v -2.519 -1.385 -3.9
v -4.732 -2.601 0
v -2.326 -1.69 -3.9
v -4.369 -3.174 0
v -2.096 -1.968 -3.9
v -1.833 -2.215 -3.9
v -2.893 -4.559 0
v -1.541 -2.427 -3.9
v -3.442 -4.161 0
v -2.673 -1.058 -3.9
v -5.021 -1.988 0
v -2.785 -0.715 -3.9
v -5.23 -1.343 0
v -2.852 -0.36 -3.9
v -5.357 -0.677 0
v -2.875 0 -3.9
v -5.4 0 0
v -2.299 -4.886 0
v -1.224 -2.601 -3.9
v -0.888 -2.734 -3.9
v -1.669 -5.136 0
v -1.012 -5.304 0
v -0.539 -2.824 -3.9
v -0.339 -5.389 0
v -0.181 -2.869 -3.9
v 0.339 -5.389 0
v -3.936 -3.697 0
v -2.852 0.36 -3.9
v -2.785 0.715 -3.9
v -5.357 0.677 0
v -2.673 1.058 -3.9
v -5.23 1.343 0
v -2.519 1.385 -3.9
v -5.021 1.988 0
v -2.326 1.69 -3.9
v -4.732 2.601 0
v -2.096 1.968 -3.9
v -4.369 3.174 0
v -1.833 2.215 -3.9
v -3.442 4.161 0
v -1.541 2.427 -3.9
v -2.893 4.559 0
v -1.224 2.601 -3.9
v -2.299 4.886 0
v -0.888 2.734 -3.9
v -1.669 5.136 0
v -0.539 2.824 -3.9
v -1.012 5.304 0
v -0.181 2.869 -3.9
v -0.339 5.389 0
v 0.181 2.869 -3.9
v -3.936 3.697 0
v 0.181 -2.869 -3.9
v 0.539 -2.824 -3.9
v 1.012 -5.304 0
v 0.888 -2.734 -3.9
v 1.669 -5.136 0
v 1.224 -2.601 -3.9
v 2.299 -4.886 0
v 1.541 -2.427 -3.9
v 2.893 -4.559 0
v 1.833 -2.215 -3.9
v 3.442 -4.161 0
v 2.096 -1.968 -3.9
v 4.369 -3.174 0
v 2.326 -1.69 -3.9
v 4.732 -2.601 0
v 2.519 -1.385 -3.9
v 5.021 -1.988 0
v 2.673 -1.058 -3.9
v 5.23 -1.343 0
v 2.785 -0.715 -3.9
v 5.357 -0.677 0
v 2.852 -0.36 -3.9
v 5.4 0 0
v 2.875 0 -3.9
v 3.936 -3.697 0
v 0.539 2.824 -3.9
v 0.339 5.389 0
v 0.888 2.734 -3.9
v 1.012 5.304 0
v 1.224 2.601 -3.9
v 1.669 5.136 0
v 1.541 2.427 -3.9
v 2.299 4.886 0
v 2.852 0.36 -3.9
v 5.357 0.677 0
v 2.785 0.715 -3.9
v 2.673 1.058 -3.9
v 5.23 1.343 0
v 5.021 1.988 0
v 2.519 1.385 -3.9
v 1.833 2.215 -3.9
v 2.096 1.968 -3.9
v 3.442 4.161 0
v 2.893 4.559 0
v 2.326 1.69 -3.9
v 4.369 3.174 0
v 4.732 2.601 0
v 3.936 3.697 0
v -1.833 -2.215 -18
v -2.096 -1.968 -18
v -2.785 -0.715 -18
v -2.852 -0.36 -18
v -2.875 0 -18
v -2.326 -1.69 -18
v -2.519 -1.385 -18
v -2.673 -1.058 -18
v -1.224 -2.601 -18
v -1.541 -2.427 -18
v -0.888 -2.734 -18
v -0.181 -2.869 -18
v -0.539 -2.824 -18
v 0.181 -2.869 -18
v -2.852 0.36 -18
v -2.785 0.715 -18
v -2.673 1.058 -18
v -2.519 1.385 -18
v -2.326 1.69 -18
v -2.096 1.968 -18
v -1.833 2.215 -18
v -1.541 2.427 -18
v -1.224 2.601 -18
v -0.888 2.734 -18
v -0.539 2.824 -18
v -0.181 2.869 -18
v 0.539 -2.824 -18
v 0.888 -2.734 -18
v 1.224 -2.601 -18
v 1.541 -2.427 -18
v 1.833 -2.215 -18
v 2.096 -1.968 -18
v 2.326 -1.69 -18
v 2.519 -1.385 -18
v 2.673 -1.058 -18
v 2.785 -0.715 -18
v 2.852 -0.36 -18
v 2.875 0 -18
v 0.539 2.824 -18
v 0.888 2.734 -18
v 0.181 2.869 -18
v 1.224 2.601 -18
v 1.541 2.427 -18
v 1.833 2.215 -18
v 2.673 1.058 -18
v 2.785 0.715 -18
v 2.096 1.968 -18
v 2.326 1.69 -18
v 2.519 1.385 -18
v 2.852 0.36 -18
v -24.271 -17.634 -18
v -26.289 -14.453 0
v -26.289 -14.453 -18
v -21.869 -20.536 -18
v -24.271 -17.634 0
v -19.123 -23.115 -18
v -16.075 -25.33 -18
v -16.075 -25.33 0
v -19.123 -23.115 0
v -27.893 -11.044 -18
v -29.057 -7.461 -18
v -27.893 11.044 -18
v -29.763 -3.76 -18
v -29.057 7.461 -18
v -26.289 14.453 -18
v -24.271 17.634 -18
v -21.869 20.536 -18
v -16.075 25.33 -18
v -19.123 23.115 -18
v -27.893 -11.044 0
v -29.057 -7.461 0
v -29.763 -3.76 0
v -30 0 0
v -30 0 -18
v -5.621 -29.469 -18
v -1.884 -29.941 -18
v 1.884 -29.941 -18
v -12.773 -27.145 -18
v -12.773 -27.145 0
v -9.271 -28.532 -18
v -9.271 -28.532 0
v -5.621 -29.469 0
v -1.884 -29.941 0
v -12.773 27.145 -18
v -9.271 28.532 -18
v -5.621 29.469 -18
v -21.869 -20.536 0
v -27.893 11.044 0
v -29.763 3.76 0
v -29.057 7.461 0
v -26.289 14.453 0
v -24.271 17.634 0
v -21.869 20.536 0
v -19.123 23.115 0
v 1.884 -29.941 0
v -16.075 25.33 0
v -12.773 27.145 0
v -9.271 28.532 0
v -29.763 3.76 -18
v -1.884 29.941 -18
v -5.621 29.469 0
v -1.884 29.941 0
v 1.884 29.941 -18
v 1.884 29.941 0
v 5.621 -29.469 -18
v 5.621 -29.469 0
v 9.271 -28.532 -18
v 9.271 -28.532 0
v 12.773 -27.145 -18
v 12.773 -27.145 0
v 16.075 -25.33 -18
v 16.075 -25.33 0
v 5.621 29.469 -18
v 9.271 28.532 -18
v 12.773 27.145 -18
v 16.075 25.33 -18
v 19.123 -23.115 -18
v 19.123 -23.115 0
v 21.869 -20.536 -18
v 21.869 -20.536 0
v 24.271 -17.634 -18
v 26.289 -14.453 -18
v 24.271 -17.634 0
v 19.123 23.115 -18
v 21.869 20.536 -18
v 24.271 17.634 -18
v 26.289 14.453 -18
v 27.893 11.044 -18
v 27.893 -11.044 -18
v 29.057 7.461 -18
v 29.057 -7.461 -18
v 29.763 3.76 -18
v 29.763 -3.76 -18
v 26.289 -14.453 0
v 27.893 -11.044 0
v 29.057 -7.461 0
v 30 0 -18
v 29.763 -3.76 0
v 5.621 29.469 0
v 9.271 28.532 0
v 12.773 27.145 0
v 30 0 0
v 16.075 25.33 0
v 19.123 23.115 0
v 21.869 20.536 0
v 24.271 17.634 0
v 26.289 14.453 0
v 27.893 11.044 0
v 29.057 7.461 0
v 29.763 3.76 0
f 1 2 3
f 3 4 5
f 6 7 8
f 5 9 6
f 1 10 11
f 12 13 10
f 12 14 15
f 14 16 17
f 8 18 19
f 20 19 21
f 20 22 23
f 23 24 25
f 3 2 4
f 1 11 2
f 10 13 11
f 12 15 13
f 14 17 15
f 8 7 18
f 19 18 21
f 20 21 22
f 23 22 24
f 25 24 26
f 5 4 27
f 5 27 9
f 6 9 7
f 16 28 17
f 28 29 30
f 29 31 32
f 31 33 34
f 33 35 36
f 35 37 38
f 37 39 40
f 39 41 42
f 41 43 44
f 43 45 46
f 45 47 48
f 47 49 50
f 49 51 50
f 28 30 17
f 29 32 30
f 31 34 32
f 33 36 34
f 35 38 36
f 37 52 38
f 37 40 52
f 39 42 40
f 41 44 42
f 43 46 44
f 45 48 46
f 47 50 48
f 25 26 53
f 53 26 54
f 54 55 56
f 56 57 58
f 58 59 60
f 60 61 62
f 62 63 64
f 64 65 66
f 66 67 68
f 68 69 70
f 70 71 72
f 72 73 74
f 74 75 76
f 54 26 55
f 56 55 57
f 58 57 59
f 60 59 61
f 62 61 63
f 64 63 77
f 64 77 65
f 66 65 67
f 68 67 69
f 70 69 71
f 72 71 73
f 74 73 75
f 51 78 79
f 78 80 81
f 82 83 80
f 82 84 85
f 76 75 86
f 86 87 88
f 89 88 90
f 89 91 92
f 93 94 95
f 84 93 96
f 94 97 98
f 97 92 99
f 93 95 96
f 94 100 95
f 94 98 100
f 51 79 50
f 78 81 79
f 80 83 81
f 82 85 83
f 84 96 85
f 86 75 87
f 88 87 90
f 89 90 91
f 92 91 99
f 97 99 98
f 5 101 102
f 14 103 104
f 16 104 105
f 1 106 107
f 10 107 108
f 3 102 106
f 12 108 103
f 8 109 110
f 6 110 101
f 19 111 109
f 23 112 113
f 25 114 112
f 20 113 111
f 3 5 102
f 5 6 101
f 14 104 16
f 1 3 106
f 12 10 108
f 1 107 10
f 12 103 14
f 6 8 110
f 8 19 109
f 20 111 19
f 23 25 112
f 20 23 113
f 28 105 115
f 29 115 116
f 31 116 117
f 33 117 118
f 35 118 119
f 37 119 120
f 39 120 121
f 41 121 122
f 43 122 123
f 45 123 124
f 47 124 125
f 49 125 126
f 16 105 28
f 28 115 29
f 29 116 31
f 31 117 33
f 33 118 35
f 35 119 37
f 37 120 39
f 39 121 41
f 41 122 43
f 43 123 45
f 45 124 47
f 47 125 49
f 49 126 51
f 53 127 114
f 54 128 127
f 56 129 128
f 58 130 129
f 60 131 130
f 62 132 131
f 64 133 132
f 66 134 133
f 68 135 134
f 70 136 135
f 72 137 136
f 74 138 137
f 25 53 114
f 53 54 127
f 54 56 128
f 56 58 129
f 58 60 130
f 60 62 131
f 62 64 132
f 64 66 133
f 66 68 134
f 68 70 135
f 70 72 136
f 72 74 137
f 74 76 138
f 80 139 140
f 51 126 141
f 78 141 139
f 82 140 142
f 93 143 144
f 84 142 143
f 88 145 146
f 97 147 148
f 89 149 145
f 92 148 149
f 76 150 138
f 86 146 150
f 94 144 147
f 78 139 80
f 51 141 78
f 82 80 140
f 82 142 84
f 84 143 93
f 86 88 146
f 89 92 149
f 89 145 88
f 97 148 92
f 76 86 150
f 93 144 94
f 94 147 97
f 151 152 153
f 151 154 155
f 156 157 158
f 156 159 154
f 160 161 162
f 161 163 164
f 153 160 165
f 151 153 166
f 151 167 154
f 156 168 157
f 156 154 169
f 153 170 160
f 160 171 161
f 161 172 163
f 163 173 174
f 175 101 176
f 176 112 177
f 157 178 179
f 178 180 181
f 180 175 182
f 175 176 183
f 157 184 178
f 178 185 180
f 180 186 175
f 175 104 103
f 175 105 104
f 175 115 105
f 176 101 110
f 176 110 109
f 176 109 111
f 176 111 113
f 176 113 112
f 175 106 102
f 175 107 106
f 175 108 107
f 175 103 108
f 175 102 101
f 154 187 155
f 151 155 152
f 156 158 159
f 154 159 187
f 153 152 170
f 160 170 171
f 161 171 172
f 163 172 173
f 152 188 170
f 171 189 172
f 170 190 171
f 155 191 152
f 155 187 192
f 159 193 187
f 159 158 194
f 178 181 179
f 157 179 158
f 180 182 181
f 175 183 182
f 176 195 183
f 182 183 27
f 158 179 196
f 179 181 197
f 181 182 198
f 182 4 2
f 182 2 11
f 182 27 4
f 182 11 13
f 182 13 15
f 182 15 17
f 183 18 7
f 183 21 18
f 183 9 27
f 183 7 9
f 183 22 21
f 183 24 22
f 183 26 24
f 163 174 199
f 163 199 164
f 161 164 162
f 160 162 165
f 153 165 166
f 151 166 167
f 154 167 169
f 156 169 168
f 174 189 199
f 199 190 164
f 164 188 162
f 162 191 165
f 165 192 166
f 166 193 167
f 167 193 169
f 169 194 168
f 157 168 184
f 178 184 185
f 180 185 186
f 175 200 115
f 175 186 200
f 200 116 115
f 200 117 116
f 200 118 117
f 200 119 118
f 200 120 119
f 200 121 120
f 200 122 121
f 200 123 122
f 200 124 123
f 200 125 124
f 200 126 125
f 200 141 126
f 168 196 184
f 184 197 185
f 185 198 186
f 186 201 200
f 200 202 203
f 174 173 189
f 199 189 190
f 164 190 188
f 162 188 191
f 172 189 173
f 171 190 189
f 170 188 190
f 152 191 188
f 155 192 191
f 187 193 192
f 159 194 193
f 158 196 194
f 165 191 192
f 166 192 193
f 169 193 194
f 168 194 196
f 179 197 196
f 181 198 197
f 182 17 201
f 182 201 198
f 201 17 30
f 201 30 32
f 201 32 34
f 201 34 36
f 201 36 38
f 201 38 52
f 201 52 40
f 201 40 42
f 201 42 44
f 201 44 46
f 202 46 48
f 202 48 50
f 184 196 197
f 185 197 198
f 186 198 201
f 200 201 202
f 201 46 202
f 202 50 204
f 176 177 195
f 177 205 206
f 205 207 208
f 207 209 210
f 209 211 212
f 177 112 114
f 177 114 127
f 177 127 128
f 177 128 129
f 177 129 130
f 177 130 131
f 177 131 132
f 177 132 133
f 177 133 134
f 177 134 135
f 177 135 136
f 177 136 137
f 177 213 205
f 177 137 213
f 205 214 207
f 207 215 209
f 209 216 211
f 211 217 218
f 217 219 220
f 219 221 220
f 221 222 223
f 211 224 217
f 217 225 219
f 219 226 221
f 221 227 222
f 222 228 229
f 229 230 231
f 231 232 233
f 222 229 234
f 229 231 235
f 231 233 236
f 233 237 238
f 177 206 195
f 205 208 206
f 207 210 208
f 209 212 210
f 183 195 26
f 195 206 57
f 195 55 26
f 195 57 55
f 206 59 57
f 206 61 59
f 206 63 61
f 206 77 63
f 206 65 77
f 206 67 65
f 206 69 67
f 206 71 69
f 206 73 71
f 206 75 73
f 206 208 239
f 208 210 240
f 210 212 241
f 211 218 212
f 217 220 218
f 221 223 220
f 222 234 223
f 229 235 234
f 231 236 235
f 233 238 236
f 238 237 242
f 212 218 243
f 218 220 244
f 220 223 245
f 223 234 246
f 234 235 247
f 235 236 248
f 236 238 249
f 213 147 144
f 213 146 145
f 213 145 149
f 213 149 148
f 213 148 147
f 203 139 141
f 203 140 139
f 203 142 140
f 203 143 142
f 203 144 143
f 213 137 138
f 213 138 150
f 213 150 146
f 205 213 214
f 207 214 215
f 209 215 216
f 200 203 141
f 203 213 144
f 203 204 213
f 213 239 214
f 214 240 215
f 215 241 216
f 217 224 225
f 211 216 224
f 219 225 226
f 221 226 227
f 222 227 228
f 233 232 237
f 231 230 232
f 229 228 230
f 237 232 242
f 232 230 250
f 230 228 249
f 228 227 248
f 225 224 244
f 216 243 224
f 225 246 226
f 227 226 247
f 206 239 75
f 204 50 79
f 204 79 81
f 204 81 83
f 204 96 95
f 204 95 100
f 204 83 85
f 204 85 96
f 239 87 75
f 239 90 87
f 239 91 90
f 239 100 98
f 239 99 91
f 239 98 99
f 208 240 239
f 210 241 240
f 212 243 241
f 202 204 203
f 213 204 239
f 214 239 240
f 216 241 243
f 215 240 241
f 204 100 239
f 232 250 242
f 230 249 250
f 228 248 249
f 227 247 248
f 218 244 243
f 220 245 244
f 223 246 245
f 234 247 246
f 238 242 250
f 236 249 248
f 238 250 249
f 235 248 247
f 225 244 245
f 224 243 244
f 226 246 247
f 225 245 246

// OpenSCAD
$fn = 50;


difference() {
	union() {
		translate(v = [0, 0, -18.0000000000]) {
			cylinder(h = 18, r = 30.0000000000);
		}
	}
	union() {
		translate(v = [0, 0, 0]) {
			rotate(a = [0, 0, 0]) {
				difference() {
					union() {
						translate(v = [0, 0, -21.0000000000]) {
							cylinder(h = 21, r = 2.6000000000);
						}
						translate(v = [0, 0, -3.9000000000]) {
							cylinder(h = 3.9000000000, r1 = 2.8750000000, r2 = 5.4000000000);
						}
						translate(v = [0, 0, -21.0000000000]) {
							cylinder(h = 21, r = 2.8750000000);
						}
						translate(v = [0, 0, -21.0000000000]) {
							cylinder(h = 21, r = 2.6000000000);
						}
					}
					union();
				}
			}
		}
	}
}
